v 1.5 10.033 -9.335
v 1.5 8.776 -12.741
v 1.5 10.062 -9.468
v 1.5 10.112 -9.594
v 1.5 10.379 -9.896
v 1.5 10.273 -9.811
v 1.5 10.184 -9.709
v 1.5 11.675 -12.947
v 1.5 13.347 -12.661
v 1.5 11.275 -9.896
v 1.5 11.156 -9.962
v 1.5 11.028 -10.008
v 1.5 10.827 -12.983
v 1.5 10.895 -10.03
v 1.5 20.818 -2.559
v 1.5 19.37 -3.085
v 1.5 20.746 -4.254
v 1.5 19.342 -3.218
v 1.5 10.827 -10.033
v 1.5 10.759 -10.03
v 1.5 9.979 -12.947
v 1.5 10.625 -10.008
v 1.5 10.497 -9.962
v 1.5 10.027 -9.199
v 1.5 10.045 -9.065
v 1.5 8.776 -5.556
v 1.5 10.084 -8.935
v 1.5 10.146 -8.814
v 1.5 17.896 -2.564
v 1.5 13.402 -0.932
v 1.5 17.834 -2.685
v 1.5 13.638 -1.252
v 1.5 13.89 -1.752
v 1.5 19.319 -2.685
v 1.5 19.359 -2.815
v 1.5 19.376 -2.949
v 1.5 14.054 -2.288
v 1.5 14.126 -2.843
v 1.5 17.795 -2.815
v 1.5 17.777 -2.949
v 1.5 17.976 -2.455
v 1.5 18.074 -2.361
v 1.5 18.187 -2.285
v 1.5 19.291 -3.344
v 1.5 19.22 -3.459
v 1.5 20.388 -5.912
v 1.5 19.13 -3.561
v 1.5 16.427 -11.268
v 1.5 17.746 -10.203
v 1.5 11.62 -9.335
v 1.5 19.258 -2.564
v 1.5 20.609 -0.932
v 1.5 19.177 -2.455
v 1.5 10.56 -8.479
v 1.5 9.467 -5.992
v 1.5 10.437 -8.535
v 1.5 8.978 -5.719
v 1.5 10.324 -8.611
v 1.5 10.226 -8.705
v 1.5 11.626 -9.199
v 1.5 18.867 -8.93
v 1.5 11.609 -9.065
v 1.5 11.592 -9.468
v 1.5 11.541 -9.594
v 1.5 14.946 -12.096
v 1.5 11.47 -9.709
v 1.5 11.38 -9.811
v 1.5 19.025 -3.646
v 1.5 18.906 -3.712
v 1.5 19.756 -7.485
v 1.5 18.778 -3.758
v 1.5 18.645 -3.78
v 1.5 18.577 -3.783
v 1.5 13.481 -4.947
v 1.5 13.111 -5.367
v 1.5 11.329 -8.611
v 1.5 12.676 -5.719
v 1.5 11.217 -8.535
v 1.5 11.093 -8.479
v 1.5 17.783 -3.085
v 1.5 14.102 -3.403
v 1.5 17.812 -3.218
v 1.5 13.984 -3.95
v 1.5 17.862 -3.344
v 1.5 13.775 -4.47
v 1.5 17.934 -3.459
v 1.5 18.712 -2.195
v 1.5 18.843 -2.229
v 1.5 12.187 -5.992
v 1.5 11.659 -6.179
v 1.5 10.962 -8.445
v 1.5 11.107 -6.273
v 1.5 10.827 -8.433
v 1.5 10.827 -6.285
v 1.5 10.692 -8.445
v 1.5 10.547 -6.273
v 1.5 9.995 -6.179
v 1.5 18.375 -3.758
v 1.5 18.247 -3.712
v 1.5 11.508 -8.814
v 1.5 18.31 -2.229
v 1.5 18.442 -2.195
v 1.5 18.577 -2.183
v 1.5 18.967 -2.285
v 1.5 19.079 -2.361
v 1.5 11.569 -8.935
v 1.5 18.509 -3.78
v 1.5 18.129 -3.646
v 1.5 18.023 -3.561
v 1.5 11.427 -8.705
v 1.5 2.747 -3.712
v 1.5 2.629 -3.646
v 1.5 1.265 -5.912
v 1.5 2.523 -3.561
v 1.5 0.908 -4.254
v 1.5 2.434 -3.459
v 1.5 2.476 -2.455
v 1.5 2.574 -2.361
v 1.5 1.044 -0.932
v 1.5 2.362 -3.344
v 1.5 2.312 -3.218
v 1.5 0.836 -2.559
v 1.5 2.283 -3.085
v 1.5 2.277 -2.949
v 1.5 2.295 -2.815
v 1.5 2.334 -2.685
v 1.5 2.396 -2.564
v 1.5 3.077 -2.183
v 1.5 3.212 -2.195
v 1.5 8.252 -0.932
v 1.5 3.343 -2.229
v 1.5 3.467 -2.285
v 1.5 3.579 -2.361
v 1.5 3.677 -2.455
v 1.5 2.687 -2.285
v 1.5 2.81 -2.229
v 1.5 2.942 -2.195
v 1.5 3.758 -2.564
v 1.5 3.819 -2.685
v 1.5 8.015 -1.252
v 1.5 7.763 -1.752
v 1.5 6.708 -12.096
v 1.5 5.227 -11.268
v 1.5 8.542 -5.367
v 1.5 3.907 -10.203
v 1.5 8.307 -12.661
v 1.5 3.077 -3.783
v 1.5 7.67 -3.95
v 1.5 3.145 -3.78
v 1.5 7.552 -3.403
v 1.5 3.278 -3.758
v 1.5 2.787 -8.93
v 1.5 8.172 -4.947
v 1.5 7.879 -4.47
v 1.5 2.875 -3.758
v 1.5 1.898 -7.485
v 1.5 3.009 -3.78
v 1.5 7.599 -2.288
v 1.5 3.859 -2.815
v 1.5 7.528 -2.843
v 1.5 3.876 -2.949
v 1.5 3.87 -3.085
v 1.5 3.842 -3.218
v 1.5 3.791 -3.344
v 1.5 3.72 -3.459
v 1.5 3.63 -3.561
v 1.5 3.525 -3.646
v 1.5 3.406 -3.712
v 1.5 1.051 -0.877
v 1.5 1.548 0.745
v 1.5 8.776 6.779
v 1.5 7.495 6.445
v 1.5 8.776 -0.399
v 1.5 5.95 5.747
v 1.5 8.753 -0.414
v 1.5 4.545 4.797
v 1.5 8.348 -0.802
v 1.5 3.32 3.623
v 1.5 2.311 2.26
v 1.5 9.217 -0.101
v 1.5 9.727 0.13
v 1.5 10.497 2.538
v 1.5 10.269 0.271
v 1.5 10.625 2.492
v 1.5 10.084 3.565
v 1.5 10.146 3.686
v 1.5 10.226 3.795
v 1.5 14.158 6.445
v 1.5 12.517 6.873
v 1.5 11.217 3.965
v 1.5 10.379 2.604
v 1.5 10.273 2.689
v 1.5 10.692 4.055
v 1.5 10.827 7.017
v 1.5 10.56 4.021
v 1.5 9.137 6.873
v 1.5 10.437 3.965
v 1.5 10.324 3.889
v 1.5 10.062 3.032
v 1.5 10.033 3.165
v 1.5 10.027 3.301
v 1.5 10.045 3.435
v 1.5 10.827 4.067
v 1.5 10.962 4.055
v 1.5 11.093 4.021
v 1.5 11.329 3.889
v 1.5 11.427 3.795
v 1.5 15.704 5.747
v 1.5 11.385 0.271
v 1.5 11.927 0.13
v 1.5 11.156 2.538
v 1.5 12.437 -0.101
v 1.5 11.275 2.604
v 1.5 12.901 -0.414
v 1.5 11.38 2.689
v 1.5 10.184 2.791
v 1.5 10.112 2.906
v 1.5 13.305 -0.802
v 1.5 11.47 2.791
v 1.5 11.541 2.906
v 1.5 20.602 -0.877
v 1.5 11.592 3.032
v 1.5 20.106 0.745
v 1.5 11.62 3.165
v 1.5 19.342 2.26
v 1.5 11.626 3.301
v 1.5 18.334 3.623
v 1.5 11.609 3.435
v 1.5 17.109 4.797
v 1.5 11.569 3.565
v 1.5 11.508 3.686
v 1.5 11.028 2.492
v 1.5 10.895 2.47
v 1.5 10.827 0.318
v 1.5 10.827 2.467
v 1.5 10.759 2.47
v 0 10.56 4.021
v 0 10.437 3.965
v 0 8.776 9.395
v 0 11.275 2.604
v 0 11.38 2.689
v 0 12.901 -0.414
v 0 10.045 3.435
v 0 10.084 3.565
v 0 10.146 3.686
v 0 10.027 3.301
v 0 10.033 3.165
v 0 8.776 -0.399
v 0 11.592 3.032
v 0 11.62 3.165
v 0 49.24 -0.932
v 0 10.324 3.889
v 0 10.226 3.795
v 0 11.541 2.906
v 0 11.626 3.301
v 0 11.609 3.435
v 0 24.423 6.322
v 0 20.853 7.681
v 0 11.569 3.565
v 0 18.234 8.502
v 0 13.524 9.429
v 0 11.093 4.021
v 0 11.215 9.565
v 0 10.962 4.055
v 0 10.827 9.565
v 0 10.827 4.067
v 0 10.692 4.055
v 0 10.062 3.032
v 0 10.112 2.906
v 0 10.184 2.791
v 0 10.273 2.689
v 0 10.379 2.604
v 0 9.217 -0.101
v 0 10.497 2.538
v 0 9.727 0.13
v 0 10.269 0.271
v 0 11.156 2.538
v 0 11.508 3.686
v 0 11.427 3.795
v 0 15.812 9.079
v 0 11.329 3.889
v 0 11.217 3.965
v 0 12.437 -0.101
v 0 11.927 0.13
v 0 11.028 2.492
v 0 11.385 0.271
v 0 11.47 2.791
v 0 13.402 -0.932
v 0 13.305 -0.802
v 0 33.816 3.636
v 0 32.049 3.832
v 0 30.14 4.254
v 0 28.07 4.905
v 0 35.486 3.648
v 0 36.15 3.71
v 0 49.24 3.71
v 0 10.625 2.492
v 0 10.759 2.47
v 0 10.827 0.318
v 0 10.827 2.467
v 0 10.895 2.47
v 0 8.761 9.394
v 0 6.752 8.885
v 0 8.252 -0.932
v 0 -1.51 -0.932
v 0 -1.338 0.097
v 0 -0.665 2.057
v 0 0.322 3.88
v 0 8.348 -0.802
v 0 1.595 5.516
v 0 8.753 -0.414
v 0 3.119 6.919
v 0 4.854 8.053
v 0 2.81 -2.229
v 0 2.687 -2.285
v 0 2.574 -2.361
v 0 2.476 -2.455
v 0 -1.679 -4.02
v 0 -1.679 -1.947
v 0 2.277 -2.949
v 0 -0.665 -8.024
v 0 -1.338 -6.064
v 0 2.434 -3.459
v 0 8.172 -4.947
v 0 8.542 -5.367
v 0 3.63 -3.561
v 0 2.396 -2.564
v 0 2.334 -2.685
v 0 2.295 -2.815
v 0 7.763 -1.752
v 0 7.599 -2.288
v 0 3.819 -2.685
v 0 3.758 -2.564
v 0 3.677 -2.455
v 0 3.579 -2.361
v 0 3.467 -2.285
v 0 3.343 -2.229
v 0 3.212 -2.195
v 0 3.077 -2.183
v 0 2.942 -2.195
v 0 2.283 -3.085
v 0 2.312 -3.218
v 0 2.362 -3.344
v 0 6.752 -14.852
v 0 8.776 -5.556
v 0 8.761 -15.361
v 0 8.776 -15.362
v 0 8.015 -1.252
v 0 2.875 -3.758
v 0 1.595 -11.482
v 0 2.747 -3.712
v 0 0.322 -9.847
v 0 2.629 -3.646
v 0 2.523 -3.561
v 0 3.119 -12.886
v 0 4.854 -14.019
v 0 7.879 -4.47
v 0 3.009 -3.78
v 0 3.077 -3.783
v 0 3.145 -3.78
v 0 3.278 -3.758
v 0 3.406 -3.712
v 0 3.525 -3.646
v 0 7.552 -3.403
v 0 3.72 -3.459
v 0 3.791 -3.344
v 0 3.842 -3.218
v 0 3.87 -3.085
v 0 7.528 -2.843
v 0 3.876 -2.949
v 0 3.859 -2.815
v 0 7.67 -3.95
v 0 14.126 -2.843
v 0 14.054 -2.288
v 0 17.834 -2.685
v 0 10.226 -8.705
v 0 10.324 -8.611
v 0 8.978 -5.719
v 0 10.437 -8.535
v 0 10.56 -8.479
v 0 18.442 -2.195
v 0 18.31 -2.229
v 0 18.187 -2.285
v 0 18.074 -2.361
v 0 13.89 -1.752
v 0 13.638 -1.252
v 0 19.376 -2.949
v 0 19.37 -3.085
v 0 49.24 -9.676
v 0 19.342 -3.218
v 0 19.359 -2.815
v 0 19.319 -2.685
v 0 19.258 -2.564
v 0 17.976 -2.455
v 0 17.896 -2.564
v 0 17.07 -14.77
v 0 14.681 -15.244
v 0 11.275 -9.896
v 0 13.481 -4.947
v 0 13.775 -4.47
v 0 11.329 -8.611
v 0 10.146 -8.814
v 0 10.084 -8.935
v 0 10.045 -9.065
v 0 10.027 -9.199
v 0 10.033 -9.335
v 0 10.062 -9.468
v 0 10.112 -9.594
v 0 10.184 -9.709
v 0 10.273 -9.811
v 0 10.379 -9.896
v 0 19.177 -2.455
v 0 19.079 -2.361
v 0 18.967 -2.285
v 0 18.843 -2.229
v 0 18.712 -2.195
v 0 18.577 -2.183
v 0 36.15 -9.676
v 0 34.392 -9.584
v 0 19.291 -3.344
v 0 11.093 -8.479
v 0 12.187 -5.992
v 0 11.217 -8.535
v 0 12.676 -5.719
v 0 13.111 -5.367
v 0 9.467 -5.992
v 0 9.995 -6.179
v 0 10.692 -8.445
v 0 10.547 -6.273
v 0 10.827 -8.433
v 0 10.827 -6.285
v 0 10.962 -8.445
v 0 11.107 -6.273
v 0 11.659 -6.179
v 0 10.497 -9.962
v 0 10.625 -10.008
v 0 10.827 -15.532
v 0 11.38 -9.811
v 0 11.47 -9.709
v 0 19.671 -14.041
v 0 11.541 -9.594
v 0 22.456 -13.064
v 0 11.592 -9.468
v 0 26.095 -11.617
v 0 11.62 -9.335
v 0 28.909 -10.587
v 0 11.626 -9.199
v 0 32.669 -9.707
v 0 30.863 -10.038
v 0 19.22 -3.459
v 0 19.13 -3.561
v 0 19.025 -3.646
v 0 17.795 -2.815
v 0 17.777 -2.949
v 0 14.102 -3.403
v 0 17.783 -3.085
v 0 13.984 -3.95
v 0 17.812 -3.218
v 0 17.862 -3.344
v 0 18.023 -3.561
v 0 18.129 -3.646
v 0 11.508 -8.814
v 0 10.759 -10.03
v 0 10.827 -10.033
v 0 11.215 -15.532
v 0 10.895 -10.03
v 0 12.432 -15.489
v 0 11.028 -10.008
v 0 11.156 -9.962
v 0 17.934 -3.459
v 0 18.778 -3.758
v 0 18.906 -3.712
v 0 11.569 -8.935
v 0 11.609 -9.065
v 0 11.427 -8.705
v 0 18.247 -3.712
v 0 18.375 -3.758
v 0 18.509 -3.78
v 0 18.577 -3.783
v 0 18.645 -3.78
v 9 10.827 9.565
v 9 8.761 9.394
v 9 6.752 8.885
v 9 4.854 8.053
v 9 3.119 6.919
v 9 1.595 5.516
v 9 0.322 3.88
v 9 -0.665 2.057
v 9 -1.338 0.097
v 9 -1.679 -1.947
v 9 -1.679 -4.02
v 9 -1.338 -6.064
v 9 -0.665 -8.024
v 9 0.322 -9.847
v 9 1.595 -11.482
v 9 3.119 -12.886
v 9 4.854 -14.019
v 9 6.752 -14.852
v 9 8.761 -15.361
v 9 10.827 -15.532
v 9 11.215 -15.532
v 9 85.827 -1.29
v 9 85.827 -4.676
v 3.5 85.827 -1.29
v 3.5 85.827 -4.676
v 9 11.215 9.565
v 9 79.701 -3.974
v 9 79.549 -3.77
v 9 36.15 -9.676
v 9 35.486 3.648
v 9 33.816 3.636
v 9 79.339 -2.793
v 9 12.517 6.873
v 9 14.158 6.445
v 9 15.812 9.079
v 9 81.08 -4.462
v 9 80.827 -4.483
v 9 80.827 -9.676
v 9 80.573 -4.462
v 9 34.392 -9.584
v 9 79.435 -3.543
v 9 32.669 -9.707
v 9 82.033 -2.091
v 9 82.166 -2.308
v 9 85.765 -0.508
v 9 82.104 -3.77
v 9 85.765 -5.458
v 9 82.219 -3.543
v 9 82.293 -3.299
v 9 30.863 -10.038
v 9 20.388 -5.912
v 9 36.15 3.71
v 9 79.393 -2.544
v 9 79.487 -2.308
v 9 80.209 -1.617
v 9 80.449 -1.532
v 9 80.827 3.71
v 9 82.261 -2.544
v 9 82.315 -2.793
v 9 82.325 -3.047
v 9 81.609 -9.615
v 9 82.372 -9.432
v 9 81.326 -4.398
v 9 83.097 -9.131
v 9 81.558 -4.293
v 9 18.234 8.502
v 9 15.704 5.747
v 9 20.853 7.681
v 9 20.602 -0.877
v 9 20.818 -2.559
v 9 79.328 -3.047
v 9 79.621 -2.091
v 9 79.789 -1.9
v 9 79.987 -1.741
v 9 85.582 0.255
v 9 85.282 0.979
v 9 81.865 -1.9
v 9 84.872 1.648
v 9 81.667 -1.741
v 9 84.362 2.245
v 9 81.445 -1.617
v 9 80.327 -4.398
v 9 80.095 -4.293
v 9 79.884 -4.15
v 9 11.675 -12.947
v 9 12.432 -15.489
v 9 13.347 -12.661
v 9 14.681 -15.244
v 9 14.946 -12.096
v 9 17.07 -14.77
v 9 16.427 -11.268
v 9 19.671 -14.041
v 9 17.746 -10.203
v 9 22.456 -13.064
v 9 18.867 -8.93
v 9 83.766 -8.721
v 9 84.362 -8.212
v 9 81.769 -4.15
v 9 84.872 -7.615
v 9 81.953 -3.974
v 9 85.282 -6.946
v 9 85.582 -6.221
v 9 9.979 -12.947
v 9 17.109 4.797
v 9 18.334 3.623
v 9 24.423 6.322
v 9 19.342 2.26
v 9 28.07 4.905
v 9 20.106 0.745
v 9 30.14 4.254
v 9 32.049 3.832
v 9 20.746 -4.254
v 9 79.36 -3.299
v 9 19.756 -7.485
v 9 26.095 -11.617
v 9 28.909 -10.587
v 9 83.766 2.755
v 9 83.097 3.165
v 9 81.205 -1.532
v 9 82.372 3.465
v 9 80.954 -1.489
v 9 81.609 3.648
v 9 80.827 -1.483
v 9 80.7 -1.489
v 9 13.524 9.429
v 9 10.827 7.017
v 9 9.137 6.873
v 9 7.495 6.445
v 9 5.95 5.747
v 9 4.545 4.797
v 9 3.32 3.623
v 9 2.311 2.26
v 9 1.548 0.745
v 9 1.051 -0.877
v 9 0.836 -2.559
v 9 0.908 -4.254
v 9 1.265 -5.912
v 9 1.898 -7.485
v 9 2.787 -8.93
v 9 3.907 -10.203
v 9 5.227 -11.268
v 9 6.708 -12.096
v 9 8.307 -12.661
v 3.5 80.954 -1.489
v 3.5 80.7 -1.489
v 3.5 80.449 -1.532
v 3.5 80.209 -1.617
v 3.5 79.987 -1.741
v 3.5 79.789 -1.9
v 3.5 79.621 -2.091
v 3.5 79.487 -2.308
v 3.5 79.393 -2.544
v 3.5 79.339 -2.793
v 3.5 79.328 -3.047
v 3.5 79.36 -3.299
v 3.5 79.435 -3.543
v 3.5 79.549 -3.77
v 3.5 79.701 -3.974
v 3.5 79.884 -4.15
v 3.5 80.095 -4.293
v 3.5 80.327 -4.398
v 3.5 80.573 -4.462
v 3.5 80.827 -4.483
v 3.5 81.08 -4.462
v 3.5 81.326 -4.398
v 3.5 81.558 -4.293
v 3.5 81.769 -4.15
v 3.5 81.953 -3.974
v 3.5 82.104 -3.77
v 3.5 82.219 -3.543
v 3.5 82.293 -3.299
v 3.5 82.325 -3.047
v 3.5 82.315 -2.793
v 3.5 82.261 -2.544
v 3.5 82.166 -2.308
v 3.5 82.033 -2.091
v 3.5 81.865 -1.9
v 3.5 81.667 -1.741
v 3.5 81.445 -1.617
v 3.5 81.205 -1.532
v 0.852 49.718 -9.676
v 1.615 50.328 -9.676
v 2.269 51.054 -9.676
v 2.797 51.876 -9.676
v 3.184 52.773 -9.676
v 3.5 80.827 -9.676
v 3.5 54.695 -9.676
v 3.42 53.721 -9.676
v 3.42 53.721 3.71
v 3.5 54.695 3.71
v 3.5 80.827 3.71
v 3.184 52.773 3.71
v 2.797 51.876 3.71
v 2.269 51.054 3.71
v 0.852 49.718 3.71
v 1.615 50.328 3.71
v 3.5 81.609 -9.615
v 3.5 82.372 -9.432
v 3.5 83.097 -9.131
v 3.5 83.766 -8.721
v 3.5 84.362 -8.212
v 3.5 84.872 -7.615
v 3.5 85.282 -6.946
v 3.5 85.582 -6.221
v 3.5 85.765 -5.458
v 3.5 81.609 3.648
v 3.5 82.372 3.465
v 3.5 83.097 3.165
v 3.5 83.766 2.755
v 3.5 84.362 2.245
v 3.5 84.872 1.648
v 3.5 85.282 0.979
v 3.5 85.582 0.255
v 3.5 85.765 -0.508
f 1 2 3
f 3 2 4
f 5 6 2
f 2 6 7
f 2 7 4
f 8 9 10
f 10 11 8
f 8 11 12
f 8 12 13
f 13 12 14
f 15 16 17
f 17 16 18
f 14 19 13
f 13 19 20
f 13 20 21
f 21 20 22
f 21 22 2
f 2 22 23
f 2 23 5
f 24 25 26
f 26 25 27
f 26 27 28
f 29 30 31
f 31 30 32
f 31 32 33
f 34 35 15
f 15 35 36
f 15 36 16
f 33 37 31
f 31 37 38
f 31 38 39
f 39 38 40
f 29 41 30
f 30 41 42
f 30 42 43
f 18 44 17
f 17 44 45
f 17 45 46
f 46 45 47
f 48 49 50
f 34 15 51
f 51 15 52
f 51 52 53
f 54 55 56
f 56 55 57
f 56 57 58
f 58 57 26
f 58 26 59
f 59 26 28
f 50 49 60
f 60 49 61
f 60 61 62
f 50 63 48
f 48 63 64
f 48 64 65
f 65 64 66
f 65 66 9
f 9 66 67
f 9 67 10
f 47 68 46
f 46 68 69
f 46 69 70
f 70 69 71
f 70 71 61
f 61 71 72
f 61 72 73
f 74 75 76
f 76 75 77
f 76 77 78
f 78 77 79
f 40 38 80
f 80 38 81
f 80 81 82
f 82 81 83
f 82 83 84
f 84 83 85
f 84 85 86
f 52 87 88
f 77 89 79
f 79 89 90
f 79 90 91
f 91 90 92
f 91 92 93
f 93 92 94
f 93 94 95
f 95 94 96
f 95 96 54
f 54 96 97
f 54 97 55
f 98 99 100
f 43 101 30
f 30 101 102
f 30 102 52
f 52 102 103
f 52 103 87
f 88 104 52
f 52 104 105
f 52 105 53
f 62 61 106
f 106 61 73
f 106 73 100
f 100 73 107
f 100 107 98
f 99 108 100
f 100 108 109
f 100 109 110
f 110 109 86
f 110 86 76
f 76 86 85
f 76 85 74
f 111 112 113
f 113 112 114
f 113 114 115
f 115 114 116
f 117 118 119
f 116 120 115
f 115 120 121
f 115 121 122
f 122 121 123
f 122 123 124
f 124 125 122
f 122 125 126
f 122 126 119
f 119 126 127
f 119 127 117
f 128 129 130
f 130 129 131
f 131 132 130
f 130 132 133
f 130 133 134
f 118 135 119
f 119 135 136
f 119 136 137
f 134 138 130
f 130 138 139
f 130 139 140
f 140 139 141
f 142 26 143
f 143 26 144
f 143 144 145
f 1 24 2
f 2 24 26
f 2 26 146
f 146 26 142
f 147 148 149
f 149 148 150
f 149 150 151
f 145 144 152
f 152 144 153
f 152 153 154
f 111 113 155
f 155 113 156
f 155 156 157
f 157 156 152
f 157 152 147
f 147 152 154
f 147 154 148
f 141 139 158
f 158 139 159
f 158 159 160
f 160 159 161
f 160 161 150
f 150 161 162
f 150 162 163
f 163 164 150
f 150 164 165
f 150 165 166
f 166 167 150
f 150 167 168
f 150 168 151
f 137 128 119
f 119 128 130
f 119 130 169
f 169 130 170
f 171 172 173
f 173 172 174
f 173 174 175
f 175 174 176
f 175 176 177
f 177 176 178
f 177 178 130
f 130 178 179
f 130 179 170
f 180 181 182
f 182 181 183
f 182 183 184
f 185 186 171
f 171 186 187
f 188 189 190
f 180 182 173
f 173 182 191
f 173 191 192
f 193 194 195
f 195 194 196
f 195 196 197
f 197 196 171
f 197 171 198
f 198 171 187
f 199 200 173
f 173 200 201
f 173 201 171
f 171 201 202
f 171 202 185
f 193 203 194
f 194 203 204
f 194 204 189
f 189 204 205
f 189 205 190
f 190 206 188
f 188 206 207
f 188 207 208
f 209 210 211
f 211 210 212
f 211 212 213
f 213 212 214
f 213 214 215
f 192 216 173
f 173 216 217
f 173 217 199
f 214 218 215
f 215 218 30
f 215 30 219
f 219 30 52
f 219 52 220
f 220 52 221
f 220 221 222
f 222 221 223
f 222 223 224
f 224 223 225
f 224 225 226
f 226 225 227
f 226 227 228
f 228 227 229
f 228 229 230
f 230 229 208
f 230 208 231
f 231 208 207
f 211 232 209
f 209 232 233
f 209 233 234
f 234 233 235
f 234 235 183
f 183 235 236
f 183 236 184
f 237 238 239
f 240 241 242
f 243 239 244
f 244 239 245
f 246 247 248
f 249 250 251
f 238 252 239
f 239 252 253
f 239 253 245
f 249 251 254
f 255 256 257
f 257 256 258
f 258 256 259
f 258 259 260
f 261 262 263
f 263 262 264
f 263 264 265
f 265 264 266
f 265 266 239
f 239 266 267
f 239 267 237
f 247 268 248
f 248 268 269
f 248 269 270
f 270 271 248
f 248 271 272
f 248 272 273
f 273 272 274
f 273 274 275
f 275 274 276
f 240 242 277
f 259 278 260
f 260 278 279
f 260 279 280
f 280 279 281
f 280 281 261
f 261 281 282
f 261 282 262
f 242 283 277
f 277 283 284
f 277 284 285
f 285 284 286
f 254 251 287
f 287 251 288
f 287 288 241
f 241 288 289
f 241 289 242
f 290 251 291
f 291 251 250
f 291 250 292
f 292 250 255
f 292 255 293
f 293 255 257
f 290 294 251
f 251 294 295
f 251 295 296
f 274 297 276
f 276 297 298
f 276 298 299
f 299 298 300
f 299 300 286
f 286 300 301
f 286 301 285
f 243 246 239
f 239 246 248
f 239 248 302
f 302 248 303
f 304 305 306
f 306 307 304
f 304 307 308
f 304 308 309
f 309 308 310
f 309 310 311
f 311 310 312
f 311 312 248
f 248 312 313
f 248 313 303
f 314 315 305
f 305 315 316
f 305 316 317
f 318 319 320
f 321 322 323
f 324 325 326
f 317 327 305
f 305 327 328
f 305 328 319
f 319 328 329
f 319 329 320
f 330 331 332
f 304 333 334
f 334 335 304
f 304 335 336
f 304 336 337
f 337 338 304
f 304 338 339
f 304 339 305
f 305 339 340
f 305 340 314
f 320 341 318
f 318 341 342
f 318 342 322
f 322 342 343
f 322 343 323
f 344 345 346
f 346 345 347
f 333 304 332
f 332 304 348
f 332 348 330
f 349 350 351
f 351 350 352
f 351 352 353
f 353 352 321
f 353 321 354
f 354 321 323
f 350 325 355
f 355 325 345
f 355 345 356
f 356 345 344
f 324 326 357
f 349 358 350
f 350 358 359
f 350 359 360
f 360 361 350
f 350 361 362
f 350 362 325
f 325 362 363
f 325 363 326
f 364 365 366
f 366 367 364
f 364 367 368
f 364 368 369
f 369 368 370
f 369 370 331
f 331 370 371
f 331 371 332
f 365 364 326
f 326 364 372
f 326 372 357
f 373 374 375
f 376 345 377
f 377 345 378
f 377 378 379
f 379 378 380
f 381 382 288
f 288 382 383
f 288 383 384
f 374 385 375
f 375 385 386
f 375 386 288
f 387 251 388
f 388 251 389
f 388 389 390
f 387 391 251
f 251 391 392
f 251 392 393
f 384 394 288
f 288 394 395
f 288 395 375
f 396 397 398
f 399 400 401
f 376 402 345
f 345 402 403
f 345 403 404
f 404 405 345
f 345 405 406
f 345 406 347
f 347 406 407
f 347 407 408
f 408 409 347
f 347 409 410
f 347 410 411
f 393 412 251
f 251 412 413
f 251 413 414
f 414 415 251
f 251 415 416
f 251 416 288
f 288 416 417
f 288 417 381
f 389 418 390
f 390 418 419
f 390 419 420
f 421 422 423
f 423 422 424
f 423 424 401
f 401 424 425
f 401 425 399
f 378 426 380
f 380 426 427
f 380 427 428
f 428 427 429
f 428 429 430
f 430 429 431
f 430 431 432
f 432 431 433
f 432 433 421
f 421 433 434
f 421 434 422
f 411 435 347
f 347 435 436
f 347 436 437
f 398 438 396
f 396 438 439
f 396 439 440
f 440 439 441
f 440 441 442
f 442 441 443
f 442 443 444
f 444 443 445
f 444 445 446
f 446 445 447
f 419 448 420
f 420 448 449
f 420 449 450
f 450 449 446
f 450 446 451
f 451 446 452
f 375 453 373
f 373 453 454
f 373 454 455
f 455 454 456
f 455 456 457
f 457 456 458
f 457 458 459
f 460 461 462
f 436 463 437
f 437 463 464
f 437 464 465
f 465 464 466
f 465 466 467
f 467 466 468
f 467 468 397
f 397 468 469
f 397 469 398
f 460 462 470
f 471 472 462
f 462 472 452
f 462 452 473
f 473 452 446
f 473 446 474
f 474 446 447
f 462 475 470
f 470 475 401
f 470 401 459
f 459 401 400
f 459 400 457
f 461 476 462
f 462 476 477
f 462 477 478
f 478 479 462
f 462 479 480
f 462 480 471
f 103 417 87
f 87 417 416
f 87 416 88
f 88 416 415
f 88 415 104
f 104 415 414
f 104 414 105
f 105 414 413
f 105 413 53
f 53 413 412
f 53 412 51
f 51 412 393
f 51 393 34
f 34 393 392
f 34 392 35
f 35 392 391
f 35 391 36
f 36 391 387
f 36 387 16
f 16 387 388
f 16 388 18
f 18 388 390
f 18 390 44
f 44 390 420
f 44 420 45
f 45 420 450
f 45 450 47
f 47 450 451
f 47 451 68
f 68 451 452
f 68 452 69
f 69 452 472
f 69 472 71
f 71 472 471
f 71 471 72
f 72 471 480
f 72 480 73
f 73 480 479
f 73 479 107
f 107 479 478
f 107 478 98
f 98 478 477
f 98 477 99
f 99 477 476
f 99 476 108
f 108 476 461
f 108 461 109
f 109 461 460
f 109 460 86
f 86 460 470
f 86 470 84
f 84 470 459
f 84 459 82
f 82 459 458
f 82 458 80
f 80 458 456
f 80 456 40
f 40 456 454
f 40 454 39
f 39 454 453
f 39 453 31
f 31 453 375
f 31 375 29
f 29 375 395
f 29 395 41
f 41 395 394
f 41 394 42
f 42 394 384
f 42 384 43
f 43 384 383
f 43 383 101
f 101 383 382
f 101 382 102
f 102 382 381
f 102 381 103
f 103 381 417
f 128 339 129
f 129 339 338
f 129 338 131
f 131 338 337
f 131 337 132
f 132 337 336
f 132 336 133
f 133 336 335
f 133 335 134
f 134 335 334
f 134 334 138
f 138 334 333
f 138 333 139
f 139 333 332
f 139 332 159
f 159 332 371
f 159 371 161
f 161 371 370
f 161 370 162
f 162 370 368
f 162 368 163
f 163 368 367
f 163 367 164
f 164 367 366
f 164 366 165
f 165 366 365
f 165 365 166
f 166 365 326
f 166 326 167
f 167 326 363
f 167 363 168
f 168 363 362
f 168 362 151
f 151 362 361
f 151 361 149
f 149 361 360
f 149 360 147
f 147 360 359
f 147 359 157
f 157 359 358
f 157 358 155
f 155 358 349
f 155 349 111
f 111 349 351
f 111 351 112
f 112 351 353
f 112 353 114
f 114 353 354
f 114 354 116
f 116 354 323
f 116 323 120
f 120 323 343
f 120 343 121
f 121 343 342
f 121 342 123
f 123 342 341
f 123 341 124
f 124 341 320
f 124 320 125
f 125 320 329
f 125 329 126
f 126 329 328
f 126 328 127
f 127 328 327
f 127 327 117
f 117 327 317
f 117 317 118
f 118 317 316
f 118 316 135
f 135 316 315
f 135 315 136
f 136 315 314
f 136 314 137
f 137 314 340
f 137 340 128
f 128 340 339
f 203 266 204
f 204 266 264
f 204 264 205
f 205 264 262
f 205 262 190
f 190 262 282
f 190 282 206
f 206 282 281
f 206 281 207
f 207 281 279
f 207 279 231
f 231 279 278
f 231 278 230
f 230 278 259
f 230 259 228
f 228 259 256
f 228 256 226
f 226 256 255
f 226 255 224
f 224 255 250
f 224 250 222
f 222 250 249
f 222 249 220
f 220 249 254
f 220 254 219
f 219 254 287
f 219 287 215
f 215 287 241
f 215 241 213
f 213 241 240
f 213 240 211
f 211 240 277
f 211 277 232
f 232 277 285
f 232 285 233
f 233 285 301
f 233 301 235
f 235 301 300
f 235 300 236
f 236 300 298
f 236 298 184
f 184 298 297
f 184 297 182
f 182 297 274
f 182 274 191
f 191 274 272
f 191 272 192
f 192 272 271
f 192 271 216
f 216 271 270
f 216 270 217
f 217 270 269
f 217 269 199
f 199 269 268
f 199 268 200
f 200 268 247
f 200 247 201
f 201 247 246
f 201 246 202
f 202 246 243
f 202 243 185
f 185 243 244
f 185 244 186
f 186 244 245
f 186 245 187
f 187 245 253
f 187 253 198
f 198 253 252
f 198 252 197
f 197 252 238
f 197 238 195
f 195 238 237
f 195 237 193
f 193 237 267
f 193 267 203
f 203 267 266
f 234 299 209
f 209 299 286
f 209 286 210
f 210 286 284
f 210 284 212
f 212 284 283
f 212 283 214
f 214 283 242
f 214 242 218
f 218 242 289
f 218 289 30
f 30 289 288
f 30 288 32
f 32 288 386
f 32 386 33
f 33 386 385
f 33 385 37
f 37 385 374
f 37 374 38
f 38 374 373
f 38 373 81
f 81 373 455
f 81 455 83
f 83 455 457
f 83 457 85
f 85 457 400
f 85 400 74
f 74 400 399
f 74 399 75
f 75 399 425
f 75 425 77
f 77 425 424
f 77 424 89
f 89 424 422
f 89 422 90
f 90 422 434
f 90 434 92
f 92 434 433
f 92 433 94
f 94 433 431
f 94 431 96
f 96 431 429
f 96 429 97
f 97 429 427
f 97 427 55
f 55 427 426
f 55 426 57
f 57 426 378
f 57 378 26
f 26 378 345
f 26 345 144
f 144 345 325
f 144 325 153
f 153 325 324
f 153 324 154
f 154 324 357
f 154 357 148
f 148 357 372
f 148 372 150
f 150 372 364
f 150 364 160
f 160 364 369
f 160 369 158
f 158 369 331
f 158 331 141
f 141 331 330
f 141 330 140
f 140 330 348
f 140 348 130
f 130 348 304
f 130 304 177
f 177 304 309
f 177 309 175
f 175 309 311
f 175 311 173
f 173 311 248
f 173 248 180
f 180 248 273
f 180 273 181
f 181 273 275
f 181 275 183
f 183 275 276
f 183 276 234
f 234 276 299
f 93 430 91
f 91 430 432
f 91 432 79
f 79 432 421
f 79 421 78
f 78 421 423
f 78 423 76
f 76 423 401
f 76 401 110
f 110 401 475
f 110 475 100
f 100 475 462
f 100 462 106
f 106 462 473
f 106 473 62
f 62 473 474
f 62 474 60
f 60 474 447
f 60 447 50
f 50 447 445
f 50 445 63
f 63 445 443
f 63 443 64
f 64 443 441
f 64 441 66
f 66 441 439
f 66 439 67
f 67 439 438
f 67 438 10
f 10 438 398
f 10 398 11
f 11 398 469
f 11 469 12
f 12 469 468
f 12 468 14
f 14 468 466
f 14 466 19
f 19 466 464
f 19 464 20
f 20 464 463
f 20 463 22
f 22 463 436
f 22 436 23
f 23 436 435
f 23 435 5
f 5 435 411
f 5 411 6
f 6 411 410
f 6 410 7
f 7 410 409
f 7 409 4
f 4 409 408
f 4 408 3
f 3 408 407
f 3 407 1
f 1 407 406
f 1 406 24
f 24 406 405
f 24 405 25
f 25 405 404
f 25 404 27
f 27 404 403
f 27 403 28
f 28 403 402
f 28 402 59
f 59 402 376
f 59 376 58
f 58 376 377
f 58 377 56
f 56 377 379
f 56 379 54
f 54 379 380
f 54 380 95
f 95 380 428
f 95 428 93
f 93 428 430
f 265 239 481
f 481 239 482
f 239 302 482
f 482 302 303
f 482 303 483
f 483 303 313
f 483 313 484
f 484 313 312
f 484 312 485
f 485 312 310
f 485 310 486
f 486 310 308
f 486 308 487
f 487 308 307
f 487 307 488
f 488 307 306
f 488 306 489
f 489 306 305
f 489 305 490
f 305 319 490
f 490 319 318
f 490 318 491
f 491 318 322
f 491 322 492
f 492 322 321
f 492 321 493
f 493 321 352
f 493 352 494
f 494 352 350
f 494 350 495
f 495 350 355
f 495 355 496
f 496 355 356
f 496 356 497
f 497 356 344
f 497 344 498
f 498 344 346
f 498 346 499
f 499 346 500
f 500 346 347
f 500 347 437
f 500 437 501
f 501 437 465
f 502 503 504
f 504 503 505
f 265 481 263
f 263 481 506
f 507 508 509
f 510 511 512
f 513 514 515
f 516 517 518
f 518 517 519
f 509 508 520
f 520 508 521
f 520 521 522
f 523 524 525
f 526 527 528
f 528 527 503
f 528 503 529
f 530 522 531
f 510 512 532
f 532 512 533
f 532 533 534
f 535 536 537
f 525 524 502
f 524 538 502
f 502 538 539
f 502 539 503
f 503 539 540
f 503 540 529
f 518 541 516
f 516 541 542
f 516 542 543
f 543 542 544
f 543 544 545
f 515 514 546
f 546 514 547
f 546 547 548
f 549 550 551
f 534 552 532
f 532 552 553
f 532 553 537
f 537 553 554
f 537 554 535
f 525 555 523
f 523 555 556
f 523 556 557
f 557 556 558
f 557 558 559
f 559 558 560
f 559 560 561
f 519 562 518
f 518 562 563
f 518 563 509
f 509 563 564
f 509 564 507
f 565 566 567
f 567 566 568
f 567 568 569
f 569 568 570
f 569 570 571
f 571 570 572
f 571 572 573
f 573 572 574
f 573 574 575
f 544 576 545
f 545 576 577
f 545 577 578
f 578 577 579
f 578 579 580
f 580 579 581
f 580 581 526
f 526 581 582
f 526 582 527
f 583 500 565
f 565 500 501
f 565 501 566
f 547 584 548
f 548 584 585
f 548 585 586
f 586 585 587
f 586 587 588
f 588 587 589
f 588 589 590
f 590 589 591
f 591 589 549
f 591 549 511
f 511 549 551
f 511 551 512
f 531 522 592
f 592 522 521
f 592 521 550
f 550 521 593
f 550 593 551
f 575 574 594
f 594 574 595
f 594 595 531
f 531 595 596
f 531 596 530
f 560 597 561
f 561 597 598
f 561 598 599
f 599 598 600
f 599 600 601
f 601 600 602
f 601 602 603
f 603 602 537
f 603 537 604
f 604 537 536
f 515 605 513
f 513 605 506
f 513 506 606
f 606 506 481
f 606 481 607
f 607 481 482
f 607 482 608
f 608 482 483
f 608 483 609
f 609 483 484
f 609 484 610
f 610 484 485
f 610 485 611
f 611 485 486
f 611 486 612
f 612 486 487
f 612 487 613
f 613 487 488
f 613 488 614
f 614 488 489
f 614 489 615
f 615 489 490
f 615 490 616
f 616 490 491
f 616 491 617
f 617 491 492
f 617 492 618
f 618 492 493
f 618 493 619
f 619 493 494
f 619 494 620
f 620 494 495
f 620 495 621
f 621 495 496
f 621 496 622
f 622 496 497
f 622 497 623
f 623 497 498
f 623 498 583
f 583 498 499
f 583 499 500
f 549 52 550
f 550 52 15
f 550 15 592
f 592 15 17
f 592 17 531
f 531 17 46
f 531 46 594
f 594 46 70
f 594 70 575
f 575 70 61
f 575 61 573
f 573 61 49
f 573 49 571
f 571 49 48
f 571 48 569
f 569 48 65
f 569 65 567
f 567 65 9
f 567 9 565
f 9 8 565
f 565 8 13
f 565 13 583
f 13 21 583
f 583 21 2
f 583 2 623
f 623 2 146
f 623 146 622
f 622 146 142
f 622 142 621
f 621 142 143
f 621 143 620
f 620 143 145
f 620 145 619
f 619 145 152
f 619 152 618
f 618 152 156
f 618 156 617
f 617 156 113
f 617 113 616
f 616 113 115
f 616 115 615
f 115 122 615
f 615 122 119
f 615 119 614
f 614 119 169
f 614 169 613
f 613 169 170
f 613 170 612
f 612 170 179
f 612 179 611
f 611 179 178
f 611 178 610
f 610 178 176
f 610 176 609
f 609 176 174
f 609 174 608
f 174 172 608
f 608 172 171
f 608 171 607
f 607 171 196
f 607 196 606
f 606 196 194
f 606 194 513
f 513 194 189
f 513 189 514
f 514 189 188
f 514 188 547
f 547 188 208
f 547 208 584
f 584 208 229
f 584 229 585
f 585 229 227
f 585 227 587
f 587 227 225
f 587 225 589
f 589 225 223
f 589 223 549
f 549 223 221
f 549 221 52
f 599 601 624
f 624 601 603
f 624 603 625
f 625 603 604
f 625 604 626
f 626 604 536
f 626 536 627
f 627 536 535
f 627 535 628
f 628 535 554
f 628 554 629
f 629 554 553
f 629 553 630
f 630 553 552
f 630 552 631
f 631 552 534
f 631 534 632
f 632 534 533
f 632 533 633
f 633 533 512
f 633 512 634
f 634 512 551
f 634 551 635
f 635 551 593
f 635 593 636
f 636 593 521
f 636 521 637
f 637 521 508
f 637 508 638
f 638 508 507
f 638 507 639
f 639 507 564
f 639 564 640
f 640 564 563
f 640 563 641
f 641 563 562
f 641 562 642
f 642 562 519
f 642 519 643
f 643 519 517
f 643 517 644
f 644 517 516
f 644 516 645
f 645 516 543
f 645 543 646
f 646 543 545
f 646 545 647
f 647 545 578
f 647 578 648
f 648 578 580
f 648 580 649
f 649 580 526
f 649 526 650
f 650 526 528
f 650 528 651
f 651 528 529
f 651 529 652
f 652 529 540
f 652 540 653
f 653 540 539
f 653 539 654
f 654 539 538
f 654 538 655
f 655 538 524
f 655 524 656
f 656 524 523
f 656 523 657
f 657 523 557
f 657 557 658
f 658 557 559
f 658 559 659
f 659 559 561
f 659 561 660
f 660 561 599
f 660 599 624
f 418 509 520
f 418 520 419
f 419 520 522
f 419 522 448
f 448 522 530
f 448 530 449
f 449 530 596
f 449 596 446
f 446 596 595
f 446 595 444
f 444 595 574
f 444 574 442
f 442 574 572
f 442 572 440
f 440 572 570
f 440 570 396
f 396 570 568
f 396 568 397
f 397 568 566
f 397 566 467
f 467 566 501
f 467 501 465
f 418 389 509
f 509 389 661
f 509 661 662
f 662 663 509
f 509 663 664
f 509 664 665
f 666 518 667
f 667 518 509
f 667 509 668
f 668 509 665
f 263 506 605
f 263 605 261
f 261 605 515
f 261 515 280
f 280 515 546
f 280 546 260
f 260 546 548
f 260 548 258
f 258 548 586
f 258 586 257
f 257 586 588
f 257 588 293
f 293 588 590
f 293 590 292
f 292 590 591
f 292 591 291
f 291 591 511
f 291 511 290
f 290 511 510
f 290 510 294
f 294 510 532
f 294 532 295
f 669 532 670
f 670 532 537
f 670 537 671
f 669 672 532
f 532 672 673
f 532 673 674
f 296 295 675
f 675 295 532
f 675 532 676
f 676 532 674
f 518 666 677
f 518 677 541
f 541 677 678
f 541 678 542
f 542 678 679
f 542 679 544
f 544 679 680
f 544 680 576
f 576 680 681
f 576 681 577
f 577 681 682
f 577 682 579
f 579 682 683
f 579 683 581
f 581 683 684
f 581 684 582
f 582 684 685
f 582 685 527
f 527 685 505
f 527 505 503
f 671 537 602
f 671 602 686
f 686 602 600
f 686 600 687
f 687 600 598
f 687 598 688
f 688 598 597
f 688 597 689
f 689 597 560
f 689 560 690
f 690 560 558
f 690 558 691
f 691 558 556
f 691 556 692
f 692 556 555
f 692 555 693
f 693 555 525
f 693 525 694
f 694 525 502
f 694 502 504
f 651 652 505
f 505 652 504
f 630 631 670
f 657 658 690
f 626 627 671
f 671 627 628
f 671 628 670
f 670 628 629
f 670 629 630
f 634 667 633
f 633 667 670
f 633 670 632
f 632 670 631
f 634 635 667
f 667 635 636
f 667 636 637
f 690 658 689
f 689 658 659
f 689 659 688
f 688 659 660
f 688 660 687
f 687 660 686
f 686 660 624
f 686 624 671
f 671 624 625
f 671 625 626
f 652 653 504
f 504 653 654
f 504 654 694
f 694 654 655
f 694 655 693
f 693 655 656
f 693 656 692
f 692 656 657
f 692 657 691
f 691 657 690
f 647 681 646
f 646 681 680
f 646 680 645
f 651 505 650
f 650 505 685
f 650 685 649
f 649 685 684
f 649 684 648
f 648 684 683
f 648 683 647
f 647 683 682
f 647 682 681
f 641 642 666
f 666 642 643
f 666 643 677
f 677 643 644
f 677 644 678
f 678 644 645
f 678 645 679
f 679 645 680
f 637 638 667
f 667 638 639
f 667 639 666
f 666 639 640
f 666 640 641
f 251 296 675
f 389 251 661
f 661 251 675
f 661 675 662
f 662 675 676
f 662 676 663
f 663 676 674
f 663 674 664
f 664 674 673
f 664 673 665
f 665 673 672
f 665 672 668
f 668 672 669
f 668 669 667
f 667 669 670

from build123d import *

# Parameters (mm, degrees)
SKETCH1_R               = 10
SKETCH1_R_2             = 0.8
SKETCH1_R_3             = 3.301767793
BOSS_EXTRUDE1_DEPTH     = 1.5
SKETCH2_R               = 10
BOSS_EXTRUDE2_DEPTH     = 9
CUT_EXTRUDE1_DEPTH      = 88.683957995
CUT_EXTRUDE1_DEPTH_BACK = 88.683957995
SKETCH3_R               = 1.5
FILLET1_R               = 5
CUT_EXTRUDE2_DEPTH      = 89.416451723
CUT_EXTRUDE2_DEPTH_BACK = 89.416451723
SKETCH4_W               = 11.042772081
SKETCH4_H               = 46.651109912
FILLET3_R               = 6


with BuildPart() as part:
    # Sketch1 → Boss-Extrude1 (new body)
    with BuildSketch(Plane(origin=(0, 0, 0), x_dir=(0, 0, -1), z_dir=(1, 0, 0))):
        with Locations((2.983378847, 10.826778074)):
            Circle(SKETCH1_R)
        with Locations((2.983378847, 18.576778074)):
            Circle(SKETCH1_R_2, mode=Mode.SUBTRACT)
        with Locations((2.983378847, 3.076778074)):
            Circle(SKETCH1_R_2, mode=Mode.SUBTRACT)
        with Locations((-3.266621153, 10.826778074)):
            Circle(SKETCH1_R_2, mode=Mode.SUBTRACT)
        with Locations((9.233378847, 10.826778074)):
            Circle(SKETCH1_R_2, mode=Mode.SUBTRACT)
        with Locations((2.983378847, 10.826778074)):
            Circle(SKETCH1_R_3, mode=Mode.SUBTRACT)
    extrude(amount=BOSS_EXTRUDE1_DEPTH)

    # Sketch2 → Boss-Extrude2 (add)
    with BuildSketch(Plane.ZY):
        with BuildLine():
            Line((-15.531923741, 85.826778074), (9.565166047, 85.826778074))
            Line((9.565166047, 85.826778074), (9.565166047, 10.826778074))
            ThreePointArc((9.565166047, 10.826778074), (-2.983378847, -1.721766821), (-15.531923741, 10.826778074))
            Line((-15.531923741, 10.826778074), (-15.531923741, 85.826778074))
        make_face()
        with Locations((-2.983378847, 10.826778074)):
            Circle(SKETCH2_R, mode=Mode.SUBTRACT)
    extrude(amount=-BOSS_EXTRUDE2_DEPTH)

    # Sketch3 → Cut-Extrude1 (cut, two sides: drawn at the far end of the back side and taken through both)
    with BuildSketch(Plane(origin=(9, 0, 0), x_dir=(0, 0, -1), z_dir=(1, 0, 0)).offset(-CUT_EXTRUDE1_DEPTH_BACK)):
        with Locations((2.983378847, 80.826778074)):
            Circle(SKETCH3_R)
        with BuildLine():
            Line((-3.709517939, 36.150412664), (-3.709517939, 97.572569437))
            Line((-3.709517939, 97.572569437), (-16.389018159, 97.572569437))
            Line((-16.389018159, 97.572569437), (-16.389018159, 8.14109285))
            Line((-16.389018159, 8.14109285), (-9.565166047, 10.826778074))
            add(Edge.make_bspline(
                [(-9.565166047, 10.826778074), (-9.602791773, 15.116710976), (-7.085897165, 23.501097028), (-3.155123098, 31.470187844), (-3.709517939, 36.150412664)],
                knots=[0, 0, 0, 0, 0.483956382, 1, 1, 1, 1], degree=3))
        make_face()
        with BuildLine():
            Line((22.355775853, 8.14109285), (15.531923741, 10.826778074))
            add(Edge.make_bspline(
                [(15.531923741, 10.826778074), (15.569549467, 15.116710976), (13.052654859, 23.501097028), (9.121880792, 31.470187844), (9.676275633, 36.150412664)],
                knots=[0, 0, 0, 0, 0.483956382, 1, 1, 1, 1], degree=3))
            Line((9.676275633, 36.150412664), (9.676275633, 97.572569437))
            Line((9.676275633, 97.572569437), (22.355775853, 97.572569437))
            Line((22.355775853, 97.572569437), (22.355775853, 8.14109285))
        make_face()
    extrude(amount=CUT_EXTRUDE1_DEPTH + CUT_EXTRUDE1_DEPTH_BACK, mode=Mode.SUBTRACT)

    # Fillet1
    fillet1_edges = [part.edges().sort_by_distance(p)[0] for p in [
        (4.5, 85.826778074, 3.709517939),
        (4.5, 85.826778074, -9.676275633),
    ]]
    fillet(fillet1_edges, radius=FILLET1_R)

    # Sketch4 → Cut-Extrude2 (cut, two sides: drawn at the far end of the back side and taken through both)
    with BuildSketch(Plane(origin=(0, 0, -9.676275633), x_dir=(-1, 0, 0), z_dir=(0, 0, -1)).offset(-CUT_EXTRUDE2_DEPTH_BACK)):
        with Locations((2.021386041, 72.566048538)):
            Rectangle(SKETCH4_W, SKETCH4_H)
    extrude(amount=CUT_EXTRUDE2_DEPTH + CUT_EXTRUDE2_DEPTH_BACK, mode=Mode.SUBTRACT)

    # Fillet3
    # the kernel refuses this fillet: 6 mm, written as the material it adds along each edge
    with BuildSketch(Plane(origin=(3.5, 49.240493582, 3.709517939), x_dir=(-1, 0, 0), z_dir=(0, 0, -1))) as fillet3_piece_1:
        with BuildLine():
            CenterArc((6, 5.454356057), FILLET3_R, 180, 65.375681648)
            Line((0, 5.454356057), (-0.12, 5.454356057))
            Line((-0.12, 5.454356057), (-0.12, 0))
            Line((-0.12, 0), (0, -0.12))
            ThreePointArc((0, -0.12), (1.75, -0.12), (3.45, -0.109087121))
            Line((3.45, -0.109087121), (3.5, 0))
        make_face()
    extrude(amount=13.385793571)


solid = part.part
